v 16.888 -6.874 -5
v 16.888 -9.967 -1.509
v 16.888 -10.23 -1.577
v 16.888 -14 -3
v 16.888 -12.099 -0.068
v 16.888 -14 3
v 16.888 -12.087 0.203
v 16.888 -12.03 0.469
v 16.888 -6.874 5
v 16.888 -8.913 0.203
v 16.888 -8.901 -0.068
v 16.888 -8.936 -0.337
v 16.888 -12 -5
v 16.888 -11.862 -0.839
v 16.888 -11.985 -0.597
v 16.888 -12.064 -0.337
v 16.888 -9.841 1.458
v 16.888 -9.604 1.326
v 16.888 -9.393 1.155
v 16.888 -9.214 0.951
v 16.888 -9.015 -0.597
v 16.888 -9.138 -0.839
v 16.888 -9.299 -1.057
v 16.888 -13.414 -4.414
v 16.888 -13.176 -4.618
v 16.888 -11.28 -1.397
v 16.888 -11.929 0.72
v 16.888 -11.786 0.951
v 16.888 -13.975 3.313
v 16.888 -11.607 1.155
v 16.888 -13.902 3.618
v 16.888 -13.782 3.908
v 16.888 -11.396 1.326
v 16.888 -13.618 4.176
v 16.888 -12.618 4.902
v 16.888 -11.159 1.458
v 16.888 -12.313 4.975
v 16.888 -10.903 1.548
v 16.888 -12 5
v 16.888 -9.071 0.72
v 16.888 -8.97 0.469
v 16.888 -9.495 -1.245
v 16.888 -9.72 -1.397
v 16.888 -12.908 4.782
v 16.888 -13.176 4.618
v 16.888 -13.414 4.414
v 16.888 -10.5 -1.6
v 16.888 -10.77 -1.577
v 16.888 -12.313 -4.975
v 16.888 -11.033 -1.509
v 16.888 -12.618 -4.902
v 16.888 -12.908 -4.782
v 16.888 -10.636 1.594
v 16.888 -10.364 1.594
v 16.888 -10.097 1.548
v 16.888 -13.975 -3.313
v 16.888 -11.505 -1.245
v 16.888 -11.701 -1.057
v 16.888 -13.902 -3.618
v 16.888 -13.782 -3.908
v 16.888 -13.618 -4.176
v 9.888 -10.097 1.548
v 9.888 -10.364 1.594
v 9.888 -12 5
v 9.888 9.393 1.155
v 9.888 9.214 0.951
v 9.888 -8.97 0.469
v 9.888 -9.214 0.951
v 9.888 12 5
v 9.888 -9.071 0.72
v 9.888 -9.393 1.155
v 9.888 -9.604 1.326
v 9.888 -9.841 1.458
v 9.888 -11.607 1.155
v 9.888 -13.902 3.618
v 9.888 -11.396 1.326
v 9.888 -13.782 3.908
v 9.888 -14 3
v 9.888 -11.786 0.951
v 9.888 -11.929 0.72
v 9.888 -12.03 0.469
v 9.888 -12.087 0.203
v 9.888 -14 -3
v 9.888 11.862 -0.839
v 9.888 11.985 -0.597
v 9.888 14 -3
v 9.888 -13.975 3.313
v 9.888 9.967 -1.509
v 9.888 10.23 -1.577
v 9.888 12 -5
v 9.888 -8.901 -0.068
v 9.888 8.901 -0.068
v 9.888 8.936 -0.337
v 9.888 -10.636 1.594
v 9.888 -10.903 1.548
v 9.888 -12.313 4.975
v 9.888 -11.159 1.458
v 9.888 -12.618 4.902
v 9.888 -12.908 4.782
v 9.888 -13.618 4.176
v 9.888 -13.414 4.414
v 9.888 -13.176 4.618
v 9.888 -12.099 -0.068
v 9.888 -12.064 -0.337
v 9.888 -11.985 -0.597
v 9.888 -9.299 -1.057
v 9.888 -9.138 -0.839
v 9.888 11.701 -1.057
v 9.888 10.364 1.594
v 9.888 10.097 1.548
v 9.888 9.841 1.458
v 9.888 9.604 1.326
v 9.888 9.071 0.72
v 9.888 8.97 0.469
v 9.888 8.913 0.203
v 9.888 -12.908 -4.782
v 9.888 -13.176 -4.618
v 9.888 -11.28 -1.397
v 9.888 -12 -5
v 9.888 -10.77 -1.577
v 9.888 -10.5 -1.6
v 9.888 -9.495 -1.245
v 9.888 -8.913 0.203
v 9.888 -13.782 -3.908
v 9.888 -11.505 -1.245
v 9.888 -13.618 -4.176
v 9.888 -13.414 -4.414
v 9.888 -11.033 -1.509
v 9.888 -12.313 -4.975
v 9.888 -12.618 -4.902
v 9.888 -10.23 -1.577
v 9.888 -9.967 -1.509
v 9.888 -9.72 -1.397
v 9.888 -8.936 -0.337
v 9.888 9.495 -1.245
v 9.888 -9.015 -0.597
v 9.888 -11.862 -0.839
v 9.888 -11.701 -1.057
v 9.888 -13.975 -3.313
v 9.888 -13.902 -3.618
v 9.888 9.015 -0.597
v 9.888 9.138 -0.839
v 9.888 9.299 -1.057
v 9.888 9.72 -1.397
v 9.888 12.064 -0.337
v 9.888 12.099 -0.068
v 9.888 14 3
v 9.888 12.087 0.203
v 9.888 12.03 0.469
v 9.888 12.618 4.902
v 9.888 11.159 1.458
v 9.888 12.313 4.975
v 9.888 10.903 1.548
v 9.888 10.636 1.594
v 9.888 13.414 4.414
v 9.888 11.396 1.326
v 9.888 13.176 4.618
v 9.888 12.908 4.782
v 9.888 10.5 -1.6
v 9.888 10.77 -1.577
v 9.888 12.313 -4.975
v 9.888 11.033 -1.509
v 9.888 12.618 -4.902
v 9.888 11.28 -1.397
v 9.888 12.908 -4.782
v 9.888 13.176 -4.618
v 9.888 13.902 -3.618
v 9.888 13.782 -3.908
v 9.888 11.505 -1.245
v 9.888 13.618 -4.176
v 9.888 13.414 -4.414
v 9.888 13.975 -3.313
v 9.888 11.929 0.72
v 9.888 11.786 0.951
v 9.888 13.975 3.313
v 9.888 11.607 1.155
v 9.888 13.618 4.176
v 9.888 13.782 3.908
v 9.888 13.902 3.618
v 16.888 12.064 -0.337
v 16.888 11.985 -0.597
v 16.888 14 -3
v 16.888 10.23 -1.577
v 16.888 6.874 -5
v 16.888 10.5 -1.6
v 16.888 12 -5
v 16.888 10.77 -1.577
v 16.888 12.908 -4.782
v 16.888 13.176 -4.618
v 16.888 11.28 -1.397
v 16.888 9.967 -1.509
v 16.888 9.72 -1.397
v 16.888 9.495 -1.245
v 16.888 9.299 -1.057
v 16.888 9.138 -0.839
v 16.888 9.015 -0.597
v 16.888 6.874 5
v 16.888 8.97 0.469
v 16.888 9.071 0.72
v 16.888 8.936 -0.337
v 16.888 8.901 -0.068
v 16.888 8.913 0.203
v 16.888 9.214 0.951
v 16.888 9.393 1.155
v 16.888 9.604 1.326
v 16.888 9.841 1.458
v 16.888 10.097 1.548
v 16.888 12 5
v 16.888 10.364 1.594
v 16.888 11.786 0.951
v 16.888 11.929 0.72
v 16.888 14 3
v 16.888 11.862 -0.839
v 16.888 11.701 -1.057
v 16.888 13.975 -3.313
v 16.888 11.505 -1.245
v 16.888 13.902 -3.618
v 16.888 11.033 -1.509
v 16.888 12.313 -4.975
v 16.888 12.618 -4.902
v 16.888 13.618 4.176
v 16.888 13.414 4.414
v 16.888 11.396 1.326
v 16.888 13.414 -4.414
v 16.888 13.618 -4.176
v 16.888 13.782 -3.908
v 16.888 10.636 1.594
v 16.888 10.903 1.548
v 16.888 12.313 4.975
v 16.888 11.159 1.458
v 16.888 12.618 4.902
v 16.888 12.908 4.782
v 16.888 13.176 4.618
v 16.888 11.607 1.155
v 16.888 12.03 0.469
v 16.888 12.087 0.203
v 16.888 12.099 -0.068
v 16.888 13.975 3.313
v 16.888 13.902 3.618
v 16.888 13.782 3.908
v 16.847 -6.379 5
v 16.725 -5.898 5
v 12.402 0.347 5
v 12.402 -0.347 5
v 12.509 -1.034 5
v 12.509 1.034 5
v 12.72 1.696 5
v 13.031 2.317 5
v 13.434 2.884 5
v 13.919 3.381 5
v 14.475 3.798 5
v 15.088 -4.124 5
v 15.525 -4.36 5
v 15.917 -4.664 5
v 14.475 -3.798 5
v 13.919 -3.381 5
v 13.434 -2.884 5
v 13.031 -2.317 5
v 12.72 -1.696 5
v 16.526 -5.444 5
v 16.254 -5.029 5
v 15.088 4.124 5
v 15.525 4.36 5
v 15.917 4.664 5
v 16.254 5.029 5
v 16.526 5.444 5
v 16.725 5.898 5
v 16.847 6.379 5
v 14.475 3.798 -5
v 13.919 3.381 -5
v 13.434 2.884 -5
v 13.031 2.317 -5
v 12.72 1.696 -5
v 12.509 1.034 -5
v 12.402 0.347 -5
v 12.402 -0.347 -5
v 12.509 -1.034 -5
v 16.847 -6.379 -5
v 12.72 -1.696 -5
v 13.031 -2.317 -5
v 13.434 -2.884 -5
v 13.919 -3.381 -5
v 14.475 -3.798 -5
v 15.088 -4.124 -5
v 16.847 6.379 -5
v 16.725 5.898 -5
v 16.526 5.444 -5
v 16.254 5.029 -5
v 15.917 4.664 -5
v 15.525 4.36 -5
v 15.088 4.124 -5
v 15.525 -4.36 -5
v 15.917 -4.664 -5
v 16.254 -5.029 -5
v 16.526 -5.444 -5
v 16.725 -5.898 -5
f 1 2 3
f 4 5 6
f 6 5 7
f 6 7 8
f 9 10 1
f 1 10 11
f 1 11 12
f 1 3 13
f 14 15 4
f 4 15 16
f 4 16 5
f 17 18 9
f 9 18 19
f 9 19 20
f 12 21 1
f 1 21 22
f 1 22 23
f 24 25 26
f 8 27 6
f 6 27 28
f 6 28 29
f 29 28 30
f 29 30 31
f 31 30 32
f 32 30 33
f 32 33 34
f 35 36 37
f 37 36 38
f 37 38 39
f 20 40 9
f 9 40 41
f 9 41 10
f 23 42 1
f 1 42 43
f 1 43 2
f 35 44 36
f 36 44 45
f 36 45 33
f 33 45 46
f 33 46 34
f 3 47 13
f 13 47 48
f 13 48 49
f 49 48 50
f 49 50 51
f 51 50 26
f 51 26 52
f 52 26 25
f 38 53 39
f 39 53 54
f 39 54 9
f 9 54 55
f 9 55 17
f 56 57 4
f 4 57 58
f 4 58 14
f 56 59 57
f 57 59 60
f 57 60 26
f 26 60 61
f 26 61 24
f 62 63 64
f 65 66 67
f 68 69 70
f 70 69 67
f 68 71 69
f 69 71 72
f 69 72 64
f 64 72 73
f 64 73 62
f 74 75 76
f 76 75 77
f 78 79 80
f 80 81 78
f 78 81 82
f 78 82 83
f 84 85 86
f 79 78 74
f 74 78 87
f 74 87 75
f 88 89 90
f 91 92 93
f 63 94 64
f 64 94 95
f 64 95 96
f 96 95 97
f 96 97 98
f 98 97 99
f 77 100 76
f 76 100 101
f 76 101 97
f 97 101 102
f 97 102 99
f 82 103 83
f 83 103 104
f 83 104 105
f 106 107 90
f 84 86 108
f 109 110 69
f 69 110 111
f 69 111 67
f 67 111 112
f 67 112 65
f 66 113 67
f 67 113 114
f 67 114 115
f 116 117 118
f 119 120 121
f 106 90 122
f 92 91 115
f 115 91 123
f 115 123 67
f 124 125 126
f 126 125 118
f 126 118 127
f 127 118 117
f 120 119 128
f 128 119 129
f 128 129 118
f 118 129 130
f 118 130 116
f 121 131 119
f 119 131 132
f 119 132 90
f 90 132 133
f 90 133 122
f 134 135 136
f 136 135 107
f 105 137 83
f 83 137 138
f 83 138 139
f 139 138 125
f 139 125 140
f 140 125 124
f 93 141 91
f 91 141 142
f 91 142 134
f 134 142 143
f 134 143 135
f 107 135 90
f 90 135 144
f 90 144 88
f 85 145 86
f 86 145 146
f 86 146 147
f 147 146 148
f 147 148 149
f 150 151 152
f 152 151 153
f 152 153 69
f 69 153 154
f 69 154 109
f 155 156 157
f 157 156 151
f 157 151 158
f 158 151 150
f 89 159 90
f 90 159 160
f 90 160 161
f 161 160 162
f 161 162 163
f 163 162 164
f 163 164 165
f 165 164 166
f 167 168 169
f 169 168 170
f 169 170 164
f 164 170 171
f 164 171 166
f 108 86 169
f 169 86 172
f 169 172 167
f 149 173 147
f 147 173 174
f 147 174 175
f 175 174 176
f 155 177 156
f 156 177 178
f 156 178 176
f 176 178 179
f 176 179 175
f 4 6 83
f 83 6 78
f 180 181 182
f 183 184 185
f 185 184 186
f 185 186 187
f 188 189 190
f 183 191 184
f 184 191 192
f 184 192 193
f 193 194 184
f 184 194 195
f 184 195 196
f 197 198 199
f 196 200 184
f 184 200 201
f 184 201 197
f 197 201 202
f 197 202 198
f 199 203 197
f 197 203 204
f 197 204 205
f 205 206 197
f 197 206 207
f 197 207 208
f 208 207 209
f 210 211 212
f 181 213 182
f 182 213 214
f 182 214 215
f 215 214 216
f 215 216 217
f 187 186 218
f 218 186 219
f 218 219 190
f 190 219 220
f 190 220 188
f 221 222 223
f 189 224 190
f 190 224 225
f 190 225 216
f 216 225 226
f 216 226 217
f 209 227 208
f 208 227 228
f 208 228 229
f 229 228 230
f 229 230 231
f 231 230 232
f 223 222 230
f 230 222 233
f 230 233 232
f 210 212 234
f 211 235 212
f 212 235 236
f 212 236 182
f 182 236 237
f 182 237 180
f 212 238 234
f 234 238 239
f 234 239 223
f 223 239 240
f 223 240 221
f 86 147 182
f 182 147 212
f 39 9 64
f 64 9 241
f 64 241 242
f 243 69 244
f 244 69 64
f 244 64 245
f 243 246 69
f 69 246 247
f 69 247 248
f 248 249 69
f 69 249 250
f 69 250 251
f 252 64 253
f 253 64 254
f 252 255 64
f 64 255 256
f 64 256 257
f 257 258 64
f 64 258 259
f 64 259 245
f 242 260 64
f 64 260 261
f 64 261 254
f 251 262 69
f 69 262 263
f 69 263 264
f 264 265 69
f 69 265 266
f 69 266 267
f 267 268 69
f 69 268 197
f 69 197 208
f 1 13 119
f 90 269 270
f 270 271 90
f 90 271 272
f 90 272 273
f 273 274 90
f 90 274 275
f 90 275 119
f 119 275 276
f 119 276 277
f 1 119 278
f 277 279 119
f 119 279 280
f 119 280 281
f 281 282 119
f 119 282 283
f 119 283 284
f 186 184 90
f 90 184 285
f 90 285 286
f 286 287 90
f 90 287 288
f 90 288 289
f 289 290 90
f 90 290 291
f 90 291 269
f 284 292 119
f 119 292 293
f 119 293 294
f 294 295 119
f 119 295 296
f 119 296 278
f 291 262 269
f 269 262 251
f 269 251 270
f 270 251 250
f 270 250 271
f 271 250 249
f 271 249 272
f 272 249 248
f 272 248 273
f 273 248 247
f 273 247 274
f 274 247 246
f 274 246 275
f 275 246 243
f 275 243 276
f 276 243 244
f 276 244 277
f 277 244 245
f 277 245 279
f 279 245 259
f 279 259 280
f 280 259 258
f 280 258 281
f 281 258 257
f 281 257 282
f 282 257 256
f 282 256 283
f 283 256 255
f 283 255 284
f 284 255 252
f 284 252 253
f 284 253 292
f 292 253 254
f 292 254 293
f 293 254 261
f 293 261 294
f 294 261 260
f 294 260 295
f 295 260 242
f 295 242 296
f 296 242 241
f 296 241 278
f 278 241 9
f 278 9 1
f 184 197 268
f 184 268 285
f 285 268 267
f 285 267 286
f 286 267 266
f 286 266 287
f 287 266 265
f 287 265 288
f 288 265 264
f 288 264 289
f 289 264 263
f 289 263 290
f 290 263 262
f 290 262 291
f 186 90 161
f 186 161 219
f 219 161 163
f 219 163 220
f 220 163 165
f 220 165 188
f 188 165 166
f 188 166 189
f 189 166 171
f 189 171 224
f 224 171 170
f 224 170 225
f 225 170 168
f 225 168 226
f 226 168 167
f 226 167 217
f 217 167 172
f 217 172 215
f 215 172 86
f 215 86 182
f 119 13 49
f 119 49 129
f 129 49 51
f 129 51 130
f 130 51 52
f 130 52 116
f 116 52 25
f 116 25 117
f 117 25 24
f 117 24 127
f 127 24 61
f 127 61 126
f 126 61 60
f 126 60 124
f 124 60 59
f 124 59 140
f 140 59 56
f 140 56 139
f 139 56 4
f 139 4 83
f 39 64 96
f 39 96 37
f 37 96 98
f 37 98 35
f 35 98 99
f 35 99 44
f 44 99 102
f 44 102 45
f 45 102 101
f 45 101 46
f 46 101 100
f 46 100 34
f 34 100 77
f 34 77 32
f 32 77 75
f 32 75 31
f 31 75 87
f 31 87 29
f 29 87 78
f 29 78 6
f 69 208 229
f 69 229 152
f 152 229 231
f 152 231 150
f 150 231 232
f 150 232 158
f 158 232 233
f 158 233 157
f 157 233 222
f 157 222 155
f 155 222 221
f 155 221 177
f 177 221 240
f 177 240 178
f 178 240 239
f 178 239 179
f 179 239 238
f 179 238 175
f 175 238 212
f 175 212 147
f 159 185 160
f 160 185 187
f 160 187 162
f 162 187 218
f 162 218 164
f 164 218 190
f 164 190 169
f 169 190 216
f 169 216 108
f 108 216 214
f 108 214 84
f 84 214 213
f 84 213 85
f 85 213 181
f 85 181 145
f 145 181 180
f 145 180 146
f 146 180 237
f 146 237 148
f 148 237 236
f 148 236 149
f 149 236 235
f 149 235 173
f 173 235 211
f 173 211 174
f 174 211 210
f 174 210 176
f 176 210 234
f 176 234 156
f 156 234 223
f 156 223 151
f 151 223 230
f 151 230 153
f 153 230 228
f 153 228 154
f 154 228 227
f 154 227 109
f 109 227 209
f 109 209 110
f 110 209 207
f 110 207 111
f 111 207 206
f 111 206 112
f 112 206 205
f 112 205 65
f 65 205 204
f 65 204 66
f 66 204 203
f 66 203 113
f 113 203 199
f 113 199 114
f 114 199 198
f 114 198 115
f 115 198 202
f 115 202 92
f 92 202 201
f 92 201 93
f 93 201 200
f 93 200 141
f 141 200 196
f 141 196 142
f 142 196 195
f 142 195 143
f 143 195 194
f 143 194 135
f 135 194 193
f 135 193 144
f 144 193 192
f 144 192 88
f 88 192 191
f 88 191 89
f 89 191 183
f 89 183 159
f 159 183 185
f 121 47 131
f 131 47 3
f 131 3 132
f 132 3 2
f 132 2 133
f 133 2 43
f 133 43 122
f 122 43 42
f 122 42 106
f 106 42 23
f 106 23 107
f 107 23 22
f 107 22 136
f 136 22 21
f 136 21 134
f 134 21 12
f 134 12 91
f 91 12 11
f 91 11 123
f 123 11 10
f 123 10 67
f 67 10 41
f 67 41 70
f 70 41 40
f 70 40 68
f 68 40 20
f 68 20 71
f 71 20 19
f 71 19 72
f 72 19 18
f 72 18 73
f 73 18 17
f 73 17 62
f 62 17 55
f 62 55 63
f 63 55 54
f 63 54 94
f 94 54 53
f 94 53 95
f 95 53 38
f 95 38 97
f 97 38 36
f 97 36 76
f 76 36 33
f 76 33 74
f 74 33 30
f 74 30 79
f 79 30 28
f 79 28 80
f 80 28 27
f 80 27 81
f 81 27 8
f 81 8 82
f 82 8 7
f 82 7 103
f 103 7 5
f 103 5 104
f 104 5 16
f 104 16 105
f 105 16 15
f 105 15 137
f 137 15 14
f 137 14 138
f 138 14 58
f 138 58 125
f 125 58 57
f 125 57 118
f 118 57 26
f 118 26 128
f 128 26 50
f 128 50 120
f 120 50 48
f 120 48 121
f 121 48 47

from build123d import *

# Parameters (mm, degrees)
SKETCH1_W               = 12
SKETCH1_H               = 2.1
BOSS_EXTRUDE1_DEPTH     = 3
BOSS_EXTRUDE1_2_DEPTH   = 3
SKETCH2_W               = 4
SKETCH2_H               = 6
BOSS_EXTRUDE2_DEPTH     = 6
SKETCH3_W               = 7
SKETCH3_H               = 28
BOSS_EXTRUDE3_DEPTH     = 5
CUT_EXTRUDE1_DEPTH      = 25.108425983
CUT_EXTRUDE1_DEPTH_BACK = 25.108425983
SKETCH5_R               = 4.5
FILLET1_R               = 3
FILLET2_R               = 2
SKETCH6_R               = 1.6
CUT_EXTRUDE2_DEPTH      = 16
SKETCH7_W               = 18.107499601
SKETCH7_H               = 21.771661969
CUT_EXTRUDE3_DEPTH      = 30


with BuildPart() as part:
    # Sketch1 → Boss-Extrude1 (new, symmetric)
    with BuildSketch(Plane.XY):
        with Locations((0, 1.95)):
            Rectangle(SKETCH1_W, SKETCH1_H)
    extrude(amount=BOSS_EXTRUDE1_DEPTH, both=True)


with BuildPart() as body_2:
    # Sketch1 → Boss-Extrude1 2 (new, symmetric)
    with BuildSketch(Plane.XY):
        with Locations((0, -1.95)):
            Rectangle(SKETCH1_W, SKETCH1_H)
    extrude(amount=BOSS_EXTRUDE1_2_DEPTH, both=True)


with BuildPart() as body_3:
    # Sketch2 → Boss-Extrude2 (new body)
    with BuildSketch(Plane.XY.offset(3)):
        with Locations((8, 0)):
            Rectangle(SKETCH2_W, SKETCH2_H)
    extrude(amount=-BOSS_EXTRUDE2_DEPTH)

    # Sketch3 → Boss-Extrude3 (add, symmetric)
    with BuildSketch(Plane.XY):
        with Locations((13.388345193, 0)):
            Rectangle(SKETCH3_W, SKETCH3_H)
    extrude(amount=BOSS_EXTRUDE3_DEPTH, both=True)

    # Sketch5 → Cut-Extrude1 (cut, two sides: drawn at the far end of the back side and taken through both)
    with BuildSketch(Plane.XY.offset(5).offset(-CUT_EXTRUDE1_DEPTH_BACK)):
        with Locations((16.888345193, 0)):
            Circle(SKETCH5_R)
    extrude(amount=CUT_EXTRUDE1_DEPTH + CUT_EXTRUDE1_DEPTH_BACK, mode=Mode.SUBTRACT)

    # Fillet1
    fillet1_edges = [body_3.edges().sort_by_distance(p)[0] for p in [
        (9.888345193, -3, 0),
        (9.888345193, 3, 0),
        (16.888345193, -4.5, 0),
        (16.888345193, 4.5, 0),
    ]]
    fillet(fillet1_edges, radius=FILLET1_R)

    # Fillet2
    fillet2_edges = [body_3.edges().sort_by_distance(p)[0] for p in [
        (13.388345193, -14, -5),
        (13.388345193, 14, -5),
        (13.388345193, -14, 5),
        (13.388345193, 14, 5),
    ]]
    fillet(fillet2_edges, radius=FILLET2_R)

    # Sketch6 → Cut-Extrude2 (cut)
    with BuildSketch(Plane(origin=(16.888345193, 0, 0), x_dir=(0, 0, -1), z_dir=(1, 0, 0))):
        with Locations((0, 10.5)):
            Circle(SKETCH6_R)
        with Locations((0, -10.5)):
            Circle(SKETCH6_R)
    extrude(amount=-CUT_EXTRUDE2_DEPTH, mode=Mode.SUBTRACT)


with BuildPart() as cut_extrude3_tool:
    # Sketch7 → Cut-Extrude3 (new body)
    with BuildSketch(Plane.XY.offset(5)):
        with Locations((0.834595393, 1.114169015)):
            Rectangle(SKETCH7_W, SKETCH7_H)
    extrude(amount=-CUT_EXTRUDE3_DEPTH)


with BuildPart() as part_1:
    add(part.part)

    # Cut-Extrude3: cut by cut_extrude3_tool
    add(cut_extrude3_tool.part, mode=Mode.SUBTRACT)


with BuildPart() as body_2_1:
    add(body_2.part)

    # Cut-Extrude3: cut by cut_extrude3_tool
    add(cut_extrude3_tool.part, mode=Mode.SUBTRACT)


with BuildPart() as body_3_1:
    add(body_3.part)

    # Cut-Extrude3: cut by cut_extrude3_tool
    add(cut_extrude3_tool.part, mode=Mode.SUBTRACT)


solid = body_3_1.part
